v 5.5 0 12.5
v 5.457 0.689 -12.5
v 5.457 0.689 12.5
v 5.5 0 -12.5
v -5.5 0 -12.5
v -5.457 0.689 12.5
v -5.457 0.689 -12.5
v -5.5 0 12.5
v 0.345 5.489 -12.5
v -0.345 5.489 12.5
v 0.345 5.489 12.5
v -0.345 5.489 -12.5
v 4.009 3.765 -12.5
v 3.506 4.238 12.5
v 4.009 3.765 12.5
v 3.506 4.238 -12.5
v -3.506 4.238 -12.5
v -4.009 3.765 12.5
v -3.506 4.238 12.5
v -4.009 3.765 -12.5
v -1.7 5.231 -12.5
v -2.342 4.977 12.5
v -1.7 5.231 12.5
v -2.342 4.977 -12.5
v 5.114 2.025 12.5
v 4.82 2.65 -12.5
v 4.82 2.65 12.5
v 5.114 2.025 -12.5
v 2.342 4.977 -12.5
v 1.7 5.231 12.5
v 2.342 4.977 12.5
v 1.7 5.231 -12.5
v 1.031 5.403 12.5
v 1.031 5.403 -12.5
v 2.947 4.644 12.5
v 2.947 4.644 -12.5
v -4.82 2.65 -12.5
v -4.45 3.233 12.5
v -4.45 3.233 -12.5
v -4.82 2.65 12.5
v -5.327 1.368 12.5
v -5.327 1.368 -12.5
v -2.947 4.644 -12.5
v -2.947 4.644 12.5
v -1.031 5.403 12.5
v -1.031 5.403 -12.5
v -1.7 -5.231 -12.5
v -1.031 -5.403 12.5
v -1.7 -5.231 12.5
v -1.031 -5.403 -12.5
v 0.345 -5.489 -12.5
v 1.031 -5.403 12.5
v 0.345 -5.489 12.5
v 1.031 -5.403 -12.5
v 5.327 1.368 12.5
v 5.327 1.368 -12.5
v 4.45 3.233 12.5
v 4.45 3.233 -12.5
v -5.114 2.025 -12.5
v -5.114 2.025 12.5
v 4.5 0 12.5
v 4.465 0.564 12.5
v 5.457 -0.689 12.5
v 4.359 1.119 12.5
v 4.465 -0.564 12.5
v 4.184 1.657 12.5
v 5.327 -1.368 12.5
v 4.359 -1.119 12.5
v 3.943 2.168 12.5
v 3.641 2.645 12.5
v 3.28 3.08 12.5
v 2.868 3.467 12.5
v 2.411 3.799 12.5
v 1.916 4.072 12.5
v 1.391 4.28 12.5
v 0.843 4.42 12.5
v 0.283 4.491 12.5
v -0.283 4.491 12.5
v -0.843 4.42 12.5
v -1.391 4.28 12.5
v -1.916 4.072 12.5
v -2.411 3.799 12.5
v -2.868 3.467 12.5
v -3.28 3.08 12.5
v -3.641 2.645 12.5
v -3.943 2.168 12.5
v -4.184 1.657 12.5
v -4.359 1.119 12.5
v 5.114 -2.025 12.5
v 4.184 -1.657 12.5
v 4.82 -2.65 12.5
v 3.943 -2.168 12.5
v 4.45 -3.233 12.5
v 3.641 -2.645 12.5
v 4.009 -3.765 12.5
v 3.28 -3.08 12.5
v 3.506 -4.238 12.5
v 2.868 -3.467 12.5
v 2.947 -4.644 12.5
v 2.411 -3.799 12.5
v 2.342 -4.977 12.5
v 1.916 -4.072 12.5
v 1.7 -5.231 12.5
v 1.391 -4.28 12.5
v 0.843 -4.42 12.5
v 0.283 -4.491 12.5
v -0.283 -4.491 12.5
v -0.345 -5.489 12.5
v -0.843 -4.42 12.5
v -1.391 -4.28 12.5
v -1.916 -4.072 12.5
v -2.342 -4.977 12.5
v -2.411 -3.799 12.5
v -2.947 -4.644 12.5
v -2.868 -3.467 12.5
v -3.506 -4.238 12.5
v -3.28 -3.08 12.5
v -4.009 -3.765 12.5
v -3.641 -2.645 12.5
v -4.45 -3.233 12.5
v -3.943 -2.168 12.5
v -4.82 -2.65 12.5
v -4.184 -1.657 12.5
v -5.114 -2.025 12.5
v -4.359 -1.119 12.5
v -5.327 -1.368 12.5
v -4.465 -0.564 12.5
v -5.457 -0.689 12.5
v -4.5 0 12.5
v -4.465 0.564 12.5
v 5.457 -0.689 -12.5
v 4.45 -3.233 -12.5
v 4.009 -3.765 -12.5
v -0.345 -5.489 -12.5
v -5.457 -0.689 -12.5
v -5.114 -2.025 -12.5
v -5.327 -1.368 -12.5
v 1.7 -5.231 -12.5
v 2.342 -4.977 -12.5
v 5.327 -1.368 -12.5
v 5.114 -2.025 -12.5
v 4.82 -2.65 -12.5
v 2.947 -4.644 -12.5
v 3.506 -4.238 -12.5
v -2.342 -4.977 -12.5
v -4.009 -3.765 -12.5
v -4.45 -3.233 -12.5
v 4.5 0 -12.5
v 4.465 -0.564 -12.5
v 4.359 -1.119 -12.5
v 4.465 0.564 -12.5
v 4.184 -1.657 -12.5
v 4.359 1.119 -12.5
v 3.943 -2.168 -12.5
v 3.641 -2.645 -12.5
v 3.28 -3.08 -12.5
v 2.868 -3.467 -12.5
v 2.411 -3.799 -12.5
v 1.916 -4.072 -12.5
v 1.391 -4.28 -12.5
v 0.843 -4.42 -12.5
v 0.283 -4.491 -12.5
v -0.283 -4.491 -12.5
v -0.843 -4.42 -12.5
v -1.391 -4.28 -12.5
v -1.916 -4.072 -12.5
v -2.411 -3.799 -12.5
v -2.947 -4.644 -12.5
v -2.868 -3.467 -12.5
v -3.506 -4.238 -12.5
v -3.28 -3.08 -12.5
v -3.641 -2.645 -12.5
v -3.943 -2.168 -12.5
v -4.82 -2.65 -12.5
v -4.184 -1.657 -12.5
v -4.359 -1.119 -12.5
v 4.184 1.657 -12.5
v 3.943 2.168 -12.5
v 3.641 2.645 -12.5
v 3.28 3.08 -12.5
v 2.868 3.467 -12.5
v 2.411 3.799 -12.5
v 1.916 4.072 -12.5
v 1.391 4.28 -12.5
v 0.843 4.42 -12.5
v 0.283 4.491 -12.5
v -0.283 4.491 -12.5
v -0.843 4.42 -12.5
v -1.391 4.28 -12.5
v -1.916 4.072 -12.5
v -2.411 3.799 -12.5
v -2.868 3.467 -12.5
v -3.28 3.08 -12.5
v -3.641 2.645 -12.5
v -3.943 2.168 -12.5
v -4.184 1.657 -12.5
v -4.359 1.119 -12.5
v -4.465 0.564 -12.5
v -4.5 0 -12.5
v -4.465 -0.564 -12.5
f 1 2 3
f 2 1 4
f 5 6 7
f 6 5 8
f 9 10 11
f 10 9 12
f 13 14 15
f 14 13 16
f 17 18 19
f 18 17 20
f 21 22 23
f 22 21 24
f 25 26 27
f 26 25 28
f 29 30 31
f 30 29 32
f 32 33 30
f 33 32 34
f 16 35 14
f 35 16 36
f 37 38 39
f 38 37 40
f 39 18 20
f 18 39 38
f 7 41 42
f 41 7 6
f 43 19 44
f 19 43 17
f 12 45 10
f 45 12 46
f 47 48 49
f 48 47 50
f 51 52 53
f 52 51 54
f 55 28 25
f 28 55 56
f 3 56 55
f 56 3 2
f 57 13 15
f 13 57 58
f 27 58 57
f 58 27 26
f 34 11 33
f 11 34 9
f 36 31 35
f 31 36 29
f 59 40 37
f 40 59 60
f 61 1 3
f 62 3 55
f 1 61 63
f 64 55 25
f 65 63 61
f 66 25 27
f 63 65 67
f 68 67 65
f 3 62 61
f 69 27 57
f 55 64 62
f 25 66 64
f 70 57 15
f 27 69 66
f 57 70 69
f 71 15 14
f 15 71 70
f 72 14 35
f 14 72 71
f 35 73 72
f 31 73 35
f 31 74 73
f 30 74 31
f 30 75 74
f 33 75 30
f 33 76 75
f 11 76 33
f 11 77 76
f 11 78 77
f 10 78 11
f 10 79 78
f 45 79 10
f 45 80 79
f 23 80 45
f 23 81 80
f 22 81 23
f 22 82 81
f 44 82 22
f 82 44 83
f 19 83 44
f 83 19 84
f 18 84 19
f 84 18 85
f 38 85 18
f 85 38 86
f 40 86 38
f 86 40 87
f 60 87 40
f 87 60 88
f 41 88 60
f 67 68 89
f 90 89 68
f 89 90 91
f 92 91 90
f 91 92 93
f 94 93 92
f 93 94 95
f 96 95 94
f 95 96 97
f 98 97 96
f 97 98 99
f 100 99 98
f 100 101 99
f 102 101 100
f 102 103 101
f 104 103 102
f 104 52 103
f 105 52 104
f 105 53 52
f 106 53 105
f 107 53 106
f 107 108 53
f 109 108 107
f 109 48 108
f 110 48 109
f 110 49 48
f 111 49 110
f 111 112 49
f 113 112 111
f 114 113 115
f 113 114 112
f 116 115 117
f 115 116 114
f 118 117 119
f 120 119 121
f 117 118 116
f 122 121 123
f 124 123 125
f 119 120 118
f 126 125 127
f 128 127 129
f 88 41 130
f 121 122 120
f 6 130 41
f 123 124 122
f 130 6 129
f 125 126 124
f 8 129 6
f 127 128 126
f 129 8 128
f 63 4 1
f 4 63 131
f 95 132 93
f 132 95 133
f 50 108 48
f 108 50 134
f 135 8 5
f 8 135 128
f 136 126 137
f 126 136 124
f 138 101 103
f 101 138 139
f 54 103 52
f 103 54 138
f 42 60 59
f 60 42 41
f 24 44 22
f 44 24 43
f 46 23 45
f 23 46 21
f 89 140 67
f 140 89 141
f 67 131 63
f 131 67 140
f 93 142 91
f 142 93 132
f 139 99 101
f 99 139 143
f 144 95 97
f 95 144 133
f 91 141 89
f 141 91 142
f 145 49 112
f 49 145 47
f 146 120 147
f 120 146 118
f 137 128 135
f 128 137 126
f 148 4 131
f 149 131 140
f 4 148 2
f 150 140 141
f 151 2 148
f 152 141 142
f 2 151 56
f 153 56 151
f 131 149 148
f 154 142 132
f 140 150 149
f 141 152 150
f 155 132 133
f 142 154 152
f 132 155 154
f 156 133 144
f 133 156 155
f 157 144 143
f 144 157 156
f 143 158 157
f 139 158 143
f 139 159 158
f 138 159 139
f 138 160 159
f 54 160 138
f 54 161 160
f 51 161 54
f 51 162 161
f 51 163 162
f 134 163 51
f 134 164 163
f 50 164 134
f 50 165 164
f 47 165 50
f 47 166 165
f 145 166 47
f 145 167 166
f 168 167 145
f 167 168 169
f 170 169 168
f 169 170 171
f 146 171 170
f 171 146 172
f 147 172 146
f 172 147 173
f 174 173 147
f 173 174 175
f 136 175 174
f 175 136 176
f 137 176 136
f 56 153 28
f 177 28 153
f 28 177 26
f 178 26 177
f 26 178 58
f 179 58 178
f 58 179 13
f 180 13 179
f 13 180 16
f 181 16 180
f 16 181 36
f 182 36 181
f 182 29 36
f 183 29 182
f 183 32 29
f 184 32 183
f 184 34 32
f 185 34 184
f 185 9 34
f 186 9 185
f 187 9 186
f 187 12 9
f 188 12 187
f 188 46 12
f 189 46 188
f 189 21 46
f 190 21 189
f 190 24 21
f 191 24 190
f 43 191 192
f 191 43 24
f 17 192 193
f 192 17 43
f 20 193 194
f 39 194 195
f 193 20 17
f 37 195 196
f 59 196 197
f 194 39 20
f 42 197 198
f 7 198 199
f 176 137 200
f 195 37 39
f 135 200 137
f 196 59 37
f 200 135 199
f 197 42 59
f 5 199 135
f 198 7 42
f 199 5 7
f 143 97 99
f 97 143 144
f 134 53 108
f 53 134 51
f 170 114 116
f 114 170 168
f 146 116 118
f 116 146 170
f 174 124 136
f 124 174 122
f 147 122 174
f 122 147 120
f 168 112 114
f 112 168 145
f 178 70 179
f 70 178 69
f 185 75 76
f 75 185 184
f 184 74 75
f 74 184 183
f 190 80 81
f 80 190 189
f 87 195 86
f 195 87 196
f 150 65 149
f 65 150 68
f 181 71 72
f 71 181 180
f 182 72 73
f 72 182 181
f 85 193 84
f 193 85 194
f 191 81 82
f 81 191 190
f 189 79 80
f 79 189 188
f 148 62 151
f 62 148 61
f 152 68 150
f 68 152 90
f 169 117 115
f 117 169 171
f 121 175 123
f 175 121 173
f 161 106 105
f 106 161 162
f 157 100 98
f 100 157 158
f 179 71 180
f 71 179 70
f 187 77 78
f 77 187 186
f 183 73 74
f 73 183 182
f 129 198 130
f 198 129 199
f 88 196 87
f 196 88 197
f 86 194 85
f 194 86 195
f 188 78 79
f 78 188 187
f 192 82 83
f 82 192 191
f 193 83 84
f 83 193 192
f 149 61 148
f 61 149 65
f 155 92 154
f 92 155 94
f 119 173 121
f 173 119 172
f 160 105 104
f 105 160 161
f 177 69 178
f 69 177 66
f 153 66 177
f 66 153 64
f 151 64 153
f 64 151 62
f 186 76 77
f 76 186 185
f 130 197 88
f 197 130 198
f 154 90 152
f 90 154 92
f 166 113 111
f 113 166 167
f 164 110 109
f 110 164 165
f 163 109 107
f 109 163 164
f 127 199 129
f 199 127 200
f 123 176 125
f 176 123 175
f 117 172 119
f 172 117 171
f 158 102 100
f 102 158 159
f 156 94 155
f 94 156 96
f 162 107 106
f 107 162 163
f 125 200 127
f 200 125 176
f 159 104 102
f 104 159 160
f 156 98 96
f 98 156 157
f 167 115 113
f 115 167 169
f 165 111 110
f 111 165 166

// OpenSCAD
$fn = 50;


difference() {
	union() {
		translate(v = [0, 0, -12.5000000000]) {
			cylinder(h = 25, r = 5.5000000000);
		}
	}
	union() {
		translate(v = [0, 0, -100.0000000000]) {
			cylinder(h = 200, r = 4.5000000000);
		}
	}
}
